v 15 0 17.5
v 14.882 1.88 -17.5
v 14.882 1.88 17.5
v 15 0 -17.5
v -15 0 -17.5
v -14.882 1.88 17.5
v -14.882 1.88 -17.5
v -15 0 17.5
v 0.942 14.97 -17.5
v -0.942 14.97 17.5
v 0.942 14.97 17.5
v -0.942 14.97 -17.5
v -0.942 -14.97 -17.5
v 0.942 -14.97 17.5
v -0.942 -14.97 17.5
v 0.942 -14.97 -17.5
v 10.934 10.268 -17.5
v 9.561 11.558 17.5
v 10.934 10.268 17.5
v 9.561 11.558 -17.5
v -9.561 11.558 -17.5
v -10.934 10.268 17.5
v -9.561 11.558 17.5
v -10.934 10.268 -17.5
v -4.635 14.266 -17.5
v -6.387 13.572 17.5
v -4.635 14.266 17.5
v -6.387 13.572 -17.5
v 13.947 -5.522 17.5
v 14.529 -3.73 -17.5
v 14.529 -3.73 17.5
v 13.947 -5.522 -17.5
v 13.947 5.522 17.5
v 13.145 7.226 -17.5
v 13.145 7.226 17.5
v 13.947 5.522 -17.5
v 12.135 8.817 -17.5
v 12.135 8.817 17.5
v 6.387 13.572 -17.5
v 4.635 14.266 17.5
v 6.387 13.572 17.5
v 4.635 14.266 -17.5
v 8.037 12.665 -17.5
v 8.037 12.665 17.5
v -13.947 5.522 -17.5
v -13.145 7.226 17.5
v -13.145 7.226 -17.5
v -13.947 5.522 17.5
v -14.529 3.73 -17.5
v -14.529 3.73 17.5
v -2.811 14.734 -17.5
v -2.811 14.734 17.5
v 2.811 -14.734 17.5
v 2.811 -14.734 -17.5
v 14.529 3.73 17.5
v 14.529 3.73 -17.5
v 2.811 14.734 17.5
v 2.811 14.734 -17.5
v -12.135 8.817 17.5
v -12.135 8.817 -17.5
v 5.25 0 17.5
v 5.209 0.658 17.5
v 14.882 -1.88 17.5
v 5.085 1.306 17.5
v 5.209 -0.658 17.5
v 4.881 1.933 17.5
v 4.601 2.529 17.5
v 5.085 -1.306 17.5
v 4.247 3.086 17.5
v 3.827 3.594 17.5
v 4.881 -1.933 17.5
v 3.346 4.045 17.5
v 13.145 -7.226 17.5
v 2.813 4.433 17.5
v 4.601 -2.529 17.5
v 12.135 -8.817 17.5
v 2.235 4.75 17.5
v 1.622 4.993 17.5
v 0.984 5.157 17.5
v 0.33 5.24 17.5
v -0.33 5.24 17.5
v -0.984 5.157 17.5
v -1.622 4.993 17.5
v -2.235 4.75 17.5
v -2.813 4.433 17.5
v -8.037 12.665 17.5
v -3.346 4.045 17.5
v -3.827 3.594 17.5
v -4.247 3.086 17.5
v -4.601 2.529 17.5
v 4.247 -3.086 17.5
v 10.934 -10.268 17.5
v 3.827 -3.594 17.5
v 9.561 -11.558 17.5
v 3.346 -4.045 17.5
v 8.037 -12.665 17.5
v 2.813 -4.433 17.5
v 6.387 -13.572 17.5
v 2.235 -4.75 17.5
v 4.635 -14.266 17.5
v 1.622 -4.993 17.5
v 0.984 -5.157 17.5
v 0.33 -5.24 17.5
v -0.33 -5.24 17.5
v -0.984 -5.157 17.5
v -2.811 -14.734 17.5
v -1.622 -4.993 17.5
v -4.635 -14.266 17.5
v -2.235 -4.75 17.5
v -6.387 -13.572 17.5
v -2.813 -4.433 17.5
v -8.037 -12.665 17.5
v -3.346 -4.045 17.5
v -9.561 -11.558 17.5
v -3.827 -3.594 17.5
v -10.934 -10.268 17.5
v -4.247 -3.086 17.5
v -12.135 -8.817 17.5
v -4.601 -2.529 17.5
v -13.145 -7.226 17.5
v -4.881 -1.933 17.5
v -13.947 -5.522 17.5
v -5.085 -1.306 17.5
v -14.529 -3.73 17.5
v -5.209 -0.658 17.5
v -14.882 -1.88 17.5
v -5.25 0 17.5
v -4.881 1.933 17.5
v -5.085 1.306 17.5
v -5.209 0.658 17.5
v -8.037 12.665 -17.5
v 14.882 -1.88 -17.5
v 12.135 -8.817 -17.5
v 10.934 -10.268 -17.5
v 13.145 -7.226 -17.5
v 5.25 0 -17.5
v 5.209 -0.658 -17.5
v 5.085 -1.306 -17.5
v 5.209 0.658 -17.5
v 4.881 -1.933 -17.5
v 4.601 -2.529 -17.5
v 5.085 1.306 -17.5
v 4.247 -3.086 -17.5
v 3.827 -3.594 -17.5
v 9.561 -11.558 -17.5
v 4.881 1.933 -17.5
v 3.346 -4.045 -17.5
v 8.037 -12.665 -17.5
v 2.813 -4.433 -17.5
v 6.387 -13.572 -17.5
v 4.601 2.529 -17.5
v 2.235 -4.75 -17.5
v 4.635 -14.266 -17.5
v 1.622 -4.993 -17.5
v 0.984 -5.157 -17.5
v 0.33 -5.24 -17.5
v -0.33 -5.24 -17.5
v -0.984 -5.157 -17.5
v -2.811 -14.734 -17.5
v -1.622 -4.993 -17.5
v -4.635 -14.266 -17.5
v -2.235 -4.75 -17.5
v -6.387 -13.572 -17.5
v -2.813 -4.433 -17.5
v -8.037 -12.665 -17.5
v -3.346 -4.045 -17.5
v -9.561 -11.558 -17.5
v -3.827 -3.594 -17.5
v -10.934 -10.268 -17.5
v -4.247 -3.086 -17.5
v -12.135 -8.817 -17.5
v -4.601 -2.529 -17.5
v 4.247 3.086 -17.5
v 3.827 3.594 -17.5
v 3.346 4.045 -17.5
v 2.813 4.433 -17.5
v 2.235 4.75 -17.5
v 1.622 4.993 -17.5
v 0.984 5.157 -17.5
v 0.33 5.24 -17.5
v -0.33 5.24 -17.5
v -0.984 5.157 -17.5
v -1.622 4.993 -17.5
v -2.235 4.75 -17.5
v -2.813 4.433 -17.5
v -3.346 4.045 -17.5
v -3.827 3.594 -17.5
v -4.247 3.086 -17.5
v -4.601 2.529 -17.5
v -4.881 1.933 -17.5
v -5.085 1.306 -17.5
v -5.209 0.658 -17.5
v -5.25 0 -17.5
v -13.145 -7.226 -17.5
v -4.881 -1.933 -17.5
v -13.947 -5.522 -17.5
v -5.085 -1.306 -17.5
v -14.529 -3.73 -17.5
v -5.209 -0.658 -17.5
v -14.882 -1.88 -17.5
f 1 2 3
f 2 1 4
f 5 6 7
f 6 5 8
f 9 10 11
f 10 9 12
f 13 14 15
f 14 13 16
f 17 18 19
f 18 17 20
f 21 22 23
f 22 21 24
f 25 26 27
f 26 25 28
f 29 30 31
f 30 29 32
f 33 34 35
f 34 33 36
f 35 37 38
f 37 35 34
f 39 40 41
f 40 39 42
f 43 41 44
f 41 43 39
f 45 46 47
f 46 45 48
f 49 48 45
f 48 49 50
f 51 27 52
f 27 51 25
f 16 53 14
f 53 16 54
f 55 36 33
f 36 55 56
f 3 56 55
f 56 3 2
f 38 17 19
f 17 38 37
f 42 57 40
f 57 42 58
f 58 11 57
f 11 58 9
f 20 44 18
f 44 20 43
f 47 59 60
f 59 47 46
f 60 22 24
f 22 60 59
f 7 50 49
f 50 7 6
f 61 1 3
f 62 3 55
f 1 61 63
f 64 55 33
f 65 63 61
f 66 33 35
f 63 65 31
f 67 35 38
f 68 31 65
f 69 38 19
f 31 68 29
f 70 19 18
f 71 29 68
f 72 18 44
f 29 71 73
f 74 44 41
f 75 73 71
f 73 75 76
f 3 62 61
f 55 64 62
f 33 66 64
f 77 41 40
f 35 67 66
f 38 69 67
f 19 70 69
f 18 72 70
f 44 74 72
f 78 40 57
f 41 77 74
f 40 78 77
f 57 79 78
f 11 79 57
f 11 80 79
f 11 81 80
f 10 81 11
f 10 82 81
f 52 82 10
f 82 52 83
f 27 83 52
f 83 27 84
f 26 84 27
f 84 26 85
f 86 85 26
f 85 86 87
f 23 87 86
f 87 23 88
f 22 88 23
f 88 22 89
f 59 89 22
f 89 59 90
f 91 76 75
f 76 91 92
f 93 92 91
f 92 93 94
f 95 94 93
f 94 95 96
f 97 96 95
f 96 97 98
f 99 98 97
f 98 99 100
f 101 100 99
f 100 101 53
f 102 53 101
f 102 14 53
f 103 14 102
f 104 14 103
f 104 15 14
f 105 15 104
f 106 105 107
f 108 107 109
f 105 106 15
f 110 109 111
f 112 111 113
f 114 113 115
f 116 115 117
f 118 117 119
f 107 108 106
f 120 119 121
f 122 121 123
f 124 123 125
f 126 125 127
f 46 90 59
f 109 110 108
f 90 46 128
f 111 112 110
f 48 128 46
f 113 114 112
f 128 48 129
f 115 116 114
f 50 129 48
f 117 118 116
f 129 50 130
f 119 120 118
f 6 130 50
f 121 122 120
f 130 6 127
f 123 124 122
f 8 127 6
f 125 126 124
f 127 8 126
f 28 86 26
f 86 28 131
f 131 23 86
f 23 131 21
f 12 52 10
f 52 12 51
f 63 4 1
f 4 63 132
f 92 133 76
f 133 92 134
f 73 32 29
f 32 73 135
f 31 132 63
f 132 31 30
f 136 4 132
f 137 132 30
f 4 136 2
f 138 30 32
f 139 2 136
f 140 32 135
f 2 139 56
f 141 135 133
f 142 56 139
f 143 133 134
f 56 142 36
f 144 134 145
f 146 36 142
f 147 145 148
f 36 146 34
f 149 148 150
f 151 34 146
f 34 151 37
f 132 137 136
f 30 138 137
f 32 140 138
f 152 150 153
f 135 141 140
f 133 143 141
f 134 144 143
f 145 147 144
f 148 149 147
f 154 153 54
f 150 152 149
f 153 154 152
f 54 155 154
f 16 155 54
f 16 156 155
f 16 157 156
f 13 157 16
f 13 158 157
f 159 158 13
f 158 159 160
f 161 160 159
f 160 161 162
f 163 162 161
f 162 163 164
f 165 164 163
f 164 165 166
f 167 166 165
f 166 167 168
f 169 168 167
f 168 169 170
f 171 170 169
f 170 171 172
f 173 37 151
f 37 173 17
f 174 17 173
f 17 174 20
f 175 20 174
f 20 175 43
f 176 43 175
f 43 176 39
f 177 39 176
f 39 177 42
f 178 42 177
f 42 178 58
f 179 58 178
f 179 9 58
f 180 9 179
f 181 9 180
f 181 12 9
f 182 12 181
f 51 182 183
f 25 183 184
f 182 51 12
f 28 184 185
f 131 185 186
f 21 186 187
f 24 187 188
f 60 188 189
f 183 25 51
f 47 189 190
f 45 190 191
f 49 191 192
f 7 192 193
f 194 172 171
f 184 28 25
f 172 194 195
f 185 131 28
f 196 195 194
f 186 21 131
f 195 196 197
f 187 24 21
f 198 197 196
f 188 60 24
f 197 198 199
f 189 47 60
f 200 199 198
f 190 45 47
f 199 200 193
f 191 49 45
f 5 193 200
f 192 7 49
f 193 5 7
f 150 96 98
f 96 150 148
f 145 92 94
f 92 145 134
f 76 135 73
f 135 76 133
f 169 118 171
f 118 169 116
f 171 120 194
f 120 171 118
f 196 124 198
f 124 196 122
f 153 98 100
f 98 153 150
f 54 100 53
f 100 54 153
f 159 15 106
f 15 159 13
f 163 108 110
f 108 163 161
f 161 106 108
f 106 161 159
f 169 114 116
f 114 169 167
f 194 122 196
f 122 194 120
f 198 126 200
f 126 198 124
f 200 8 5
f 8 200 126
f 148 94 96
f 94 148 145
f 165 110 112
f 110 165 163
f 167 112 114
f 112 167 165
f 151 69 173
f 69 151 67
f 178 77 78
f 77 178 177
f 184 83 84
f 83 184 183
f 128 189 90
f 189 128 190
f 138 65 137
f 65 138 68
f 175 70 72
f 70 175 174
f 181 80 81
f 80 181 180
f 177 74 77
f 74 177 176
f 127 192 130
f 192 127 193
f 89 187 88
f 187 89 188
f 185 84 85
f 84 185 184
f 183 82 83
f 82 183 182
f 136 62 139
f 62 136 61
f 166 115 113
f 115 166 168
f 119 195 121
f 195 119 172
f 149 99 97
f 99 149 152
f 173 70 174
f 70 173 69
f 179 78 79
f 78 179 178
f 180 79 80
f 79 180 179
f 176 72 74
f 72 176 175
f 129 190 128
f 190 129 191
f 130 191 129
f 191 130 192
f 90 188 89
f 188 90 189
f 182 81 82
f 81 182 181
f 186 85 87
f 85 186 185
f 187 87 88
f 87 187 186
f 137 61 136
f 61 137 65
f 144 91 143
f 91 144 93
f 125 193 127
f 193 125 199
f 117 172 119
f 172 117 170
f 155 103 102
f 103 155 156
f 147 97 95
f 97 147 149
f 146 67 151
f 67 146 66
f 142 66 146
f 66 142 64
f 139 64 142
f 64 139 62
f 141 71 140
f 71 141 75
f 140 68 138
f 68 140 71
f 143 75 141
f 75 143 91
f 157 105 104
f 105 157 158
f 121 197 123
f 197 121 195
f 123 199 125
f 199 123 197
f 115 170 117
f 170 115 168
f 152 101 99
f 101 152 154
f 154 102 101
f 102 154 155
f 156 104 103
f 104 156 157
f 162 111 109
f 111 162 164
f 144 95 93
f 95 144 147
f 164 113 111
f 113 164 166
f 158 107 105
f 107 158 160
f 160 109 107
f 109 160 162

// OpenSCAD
$fn = 50;


difference() {
	union() {
		translate(v = [0, 0, -17.5000000000]) {
			cylinder(h = 35, r = 15.0000000000);
		}
	}
	union() {
		translate(v = [0, 0, -100.0000000000]) {
			cylinder(h = 200, r = 5.2500000000);
		}
	}
}
